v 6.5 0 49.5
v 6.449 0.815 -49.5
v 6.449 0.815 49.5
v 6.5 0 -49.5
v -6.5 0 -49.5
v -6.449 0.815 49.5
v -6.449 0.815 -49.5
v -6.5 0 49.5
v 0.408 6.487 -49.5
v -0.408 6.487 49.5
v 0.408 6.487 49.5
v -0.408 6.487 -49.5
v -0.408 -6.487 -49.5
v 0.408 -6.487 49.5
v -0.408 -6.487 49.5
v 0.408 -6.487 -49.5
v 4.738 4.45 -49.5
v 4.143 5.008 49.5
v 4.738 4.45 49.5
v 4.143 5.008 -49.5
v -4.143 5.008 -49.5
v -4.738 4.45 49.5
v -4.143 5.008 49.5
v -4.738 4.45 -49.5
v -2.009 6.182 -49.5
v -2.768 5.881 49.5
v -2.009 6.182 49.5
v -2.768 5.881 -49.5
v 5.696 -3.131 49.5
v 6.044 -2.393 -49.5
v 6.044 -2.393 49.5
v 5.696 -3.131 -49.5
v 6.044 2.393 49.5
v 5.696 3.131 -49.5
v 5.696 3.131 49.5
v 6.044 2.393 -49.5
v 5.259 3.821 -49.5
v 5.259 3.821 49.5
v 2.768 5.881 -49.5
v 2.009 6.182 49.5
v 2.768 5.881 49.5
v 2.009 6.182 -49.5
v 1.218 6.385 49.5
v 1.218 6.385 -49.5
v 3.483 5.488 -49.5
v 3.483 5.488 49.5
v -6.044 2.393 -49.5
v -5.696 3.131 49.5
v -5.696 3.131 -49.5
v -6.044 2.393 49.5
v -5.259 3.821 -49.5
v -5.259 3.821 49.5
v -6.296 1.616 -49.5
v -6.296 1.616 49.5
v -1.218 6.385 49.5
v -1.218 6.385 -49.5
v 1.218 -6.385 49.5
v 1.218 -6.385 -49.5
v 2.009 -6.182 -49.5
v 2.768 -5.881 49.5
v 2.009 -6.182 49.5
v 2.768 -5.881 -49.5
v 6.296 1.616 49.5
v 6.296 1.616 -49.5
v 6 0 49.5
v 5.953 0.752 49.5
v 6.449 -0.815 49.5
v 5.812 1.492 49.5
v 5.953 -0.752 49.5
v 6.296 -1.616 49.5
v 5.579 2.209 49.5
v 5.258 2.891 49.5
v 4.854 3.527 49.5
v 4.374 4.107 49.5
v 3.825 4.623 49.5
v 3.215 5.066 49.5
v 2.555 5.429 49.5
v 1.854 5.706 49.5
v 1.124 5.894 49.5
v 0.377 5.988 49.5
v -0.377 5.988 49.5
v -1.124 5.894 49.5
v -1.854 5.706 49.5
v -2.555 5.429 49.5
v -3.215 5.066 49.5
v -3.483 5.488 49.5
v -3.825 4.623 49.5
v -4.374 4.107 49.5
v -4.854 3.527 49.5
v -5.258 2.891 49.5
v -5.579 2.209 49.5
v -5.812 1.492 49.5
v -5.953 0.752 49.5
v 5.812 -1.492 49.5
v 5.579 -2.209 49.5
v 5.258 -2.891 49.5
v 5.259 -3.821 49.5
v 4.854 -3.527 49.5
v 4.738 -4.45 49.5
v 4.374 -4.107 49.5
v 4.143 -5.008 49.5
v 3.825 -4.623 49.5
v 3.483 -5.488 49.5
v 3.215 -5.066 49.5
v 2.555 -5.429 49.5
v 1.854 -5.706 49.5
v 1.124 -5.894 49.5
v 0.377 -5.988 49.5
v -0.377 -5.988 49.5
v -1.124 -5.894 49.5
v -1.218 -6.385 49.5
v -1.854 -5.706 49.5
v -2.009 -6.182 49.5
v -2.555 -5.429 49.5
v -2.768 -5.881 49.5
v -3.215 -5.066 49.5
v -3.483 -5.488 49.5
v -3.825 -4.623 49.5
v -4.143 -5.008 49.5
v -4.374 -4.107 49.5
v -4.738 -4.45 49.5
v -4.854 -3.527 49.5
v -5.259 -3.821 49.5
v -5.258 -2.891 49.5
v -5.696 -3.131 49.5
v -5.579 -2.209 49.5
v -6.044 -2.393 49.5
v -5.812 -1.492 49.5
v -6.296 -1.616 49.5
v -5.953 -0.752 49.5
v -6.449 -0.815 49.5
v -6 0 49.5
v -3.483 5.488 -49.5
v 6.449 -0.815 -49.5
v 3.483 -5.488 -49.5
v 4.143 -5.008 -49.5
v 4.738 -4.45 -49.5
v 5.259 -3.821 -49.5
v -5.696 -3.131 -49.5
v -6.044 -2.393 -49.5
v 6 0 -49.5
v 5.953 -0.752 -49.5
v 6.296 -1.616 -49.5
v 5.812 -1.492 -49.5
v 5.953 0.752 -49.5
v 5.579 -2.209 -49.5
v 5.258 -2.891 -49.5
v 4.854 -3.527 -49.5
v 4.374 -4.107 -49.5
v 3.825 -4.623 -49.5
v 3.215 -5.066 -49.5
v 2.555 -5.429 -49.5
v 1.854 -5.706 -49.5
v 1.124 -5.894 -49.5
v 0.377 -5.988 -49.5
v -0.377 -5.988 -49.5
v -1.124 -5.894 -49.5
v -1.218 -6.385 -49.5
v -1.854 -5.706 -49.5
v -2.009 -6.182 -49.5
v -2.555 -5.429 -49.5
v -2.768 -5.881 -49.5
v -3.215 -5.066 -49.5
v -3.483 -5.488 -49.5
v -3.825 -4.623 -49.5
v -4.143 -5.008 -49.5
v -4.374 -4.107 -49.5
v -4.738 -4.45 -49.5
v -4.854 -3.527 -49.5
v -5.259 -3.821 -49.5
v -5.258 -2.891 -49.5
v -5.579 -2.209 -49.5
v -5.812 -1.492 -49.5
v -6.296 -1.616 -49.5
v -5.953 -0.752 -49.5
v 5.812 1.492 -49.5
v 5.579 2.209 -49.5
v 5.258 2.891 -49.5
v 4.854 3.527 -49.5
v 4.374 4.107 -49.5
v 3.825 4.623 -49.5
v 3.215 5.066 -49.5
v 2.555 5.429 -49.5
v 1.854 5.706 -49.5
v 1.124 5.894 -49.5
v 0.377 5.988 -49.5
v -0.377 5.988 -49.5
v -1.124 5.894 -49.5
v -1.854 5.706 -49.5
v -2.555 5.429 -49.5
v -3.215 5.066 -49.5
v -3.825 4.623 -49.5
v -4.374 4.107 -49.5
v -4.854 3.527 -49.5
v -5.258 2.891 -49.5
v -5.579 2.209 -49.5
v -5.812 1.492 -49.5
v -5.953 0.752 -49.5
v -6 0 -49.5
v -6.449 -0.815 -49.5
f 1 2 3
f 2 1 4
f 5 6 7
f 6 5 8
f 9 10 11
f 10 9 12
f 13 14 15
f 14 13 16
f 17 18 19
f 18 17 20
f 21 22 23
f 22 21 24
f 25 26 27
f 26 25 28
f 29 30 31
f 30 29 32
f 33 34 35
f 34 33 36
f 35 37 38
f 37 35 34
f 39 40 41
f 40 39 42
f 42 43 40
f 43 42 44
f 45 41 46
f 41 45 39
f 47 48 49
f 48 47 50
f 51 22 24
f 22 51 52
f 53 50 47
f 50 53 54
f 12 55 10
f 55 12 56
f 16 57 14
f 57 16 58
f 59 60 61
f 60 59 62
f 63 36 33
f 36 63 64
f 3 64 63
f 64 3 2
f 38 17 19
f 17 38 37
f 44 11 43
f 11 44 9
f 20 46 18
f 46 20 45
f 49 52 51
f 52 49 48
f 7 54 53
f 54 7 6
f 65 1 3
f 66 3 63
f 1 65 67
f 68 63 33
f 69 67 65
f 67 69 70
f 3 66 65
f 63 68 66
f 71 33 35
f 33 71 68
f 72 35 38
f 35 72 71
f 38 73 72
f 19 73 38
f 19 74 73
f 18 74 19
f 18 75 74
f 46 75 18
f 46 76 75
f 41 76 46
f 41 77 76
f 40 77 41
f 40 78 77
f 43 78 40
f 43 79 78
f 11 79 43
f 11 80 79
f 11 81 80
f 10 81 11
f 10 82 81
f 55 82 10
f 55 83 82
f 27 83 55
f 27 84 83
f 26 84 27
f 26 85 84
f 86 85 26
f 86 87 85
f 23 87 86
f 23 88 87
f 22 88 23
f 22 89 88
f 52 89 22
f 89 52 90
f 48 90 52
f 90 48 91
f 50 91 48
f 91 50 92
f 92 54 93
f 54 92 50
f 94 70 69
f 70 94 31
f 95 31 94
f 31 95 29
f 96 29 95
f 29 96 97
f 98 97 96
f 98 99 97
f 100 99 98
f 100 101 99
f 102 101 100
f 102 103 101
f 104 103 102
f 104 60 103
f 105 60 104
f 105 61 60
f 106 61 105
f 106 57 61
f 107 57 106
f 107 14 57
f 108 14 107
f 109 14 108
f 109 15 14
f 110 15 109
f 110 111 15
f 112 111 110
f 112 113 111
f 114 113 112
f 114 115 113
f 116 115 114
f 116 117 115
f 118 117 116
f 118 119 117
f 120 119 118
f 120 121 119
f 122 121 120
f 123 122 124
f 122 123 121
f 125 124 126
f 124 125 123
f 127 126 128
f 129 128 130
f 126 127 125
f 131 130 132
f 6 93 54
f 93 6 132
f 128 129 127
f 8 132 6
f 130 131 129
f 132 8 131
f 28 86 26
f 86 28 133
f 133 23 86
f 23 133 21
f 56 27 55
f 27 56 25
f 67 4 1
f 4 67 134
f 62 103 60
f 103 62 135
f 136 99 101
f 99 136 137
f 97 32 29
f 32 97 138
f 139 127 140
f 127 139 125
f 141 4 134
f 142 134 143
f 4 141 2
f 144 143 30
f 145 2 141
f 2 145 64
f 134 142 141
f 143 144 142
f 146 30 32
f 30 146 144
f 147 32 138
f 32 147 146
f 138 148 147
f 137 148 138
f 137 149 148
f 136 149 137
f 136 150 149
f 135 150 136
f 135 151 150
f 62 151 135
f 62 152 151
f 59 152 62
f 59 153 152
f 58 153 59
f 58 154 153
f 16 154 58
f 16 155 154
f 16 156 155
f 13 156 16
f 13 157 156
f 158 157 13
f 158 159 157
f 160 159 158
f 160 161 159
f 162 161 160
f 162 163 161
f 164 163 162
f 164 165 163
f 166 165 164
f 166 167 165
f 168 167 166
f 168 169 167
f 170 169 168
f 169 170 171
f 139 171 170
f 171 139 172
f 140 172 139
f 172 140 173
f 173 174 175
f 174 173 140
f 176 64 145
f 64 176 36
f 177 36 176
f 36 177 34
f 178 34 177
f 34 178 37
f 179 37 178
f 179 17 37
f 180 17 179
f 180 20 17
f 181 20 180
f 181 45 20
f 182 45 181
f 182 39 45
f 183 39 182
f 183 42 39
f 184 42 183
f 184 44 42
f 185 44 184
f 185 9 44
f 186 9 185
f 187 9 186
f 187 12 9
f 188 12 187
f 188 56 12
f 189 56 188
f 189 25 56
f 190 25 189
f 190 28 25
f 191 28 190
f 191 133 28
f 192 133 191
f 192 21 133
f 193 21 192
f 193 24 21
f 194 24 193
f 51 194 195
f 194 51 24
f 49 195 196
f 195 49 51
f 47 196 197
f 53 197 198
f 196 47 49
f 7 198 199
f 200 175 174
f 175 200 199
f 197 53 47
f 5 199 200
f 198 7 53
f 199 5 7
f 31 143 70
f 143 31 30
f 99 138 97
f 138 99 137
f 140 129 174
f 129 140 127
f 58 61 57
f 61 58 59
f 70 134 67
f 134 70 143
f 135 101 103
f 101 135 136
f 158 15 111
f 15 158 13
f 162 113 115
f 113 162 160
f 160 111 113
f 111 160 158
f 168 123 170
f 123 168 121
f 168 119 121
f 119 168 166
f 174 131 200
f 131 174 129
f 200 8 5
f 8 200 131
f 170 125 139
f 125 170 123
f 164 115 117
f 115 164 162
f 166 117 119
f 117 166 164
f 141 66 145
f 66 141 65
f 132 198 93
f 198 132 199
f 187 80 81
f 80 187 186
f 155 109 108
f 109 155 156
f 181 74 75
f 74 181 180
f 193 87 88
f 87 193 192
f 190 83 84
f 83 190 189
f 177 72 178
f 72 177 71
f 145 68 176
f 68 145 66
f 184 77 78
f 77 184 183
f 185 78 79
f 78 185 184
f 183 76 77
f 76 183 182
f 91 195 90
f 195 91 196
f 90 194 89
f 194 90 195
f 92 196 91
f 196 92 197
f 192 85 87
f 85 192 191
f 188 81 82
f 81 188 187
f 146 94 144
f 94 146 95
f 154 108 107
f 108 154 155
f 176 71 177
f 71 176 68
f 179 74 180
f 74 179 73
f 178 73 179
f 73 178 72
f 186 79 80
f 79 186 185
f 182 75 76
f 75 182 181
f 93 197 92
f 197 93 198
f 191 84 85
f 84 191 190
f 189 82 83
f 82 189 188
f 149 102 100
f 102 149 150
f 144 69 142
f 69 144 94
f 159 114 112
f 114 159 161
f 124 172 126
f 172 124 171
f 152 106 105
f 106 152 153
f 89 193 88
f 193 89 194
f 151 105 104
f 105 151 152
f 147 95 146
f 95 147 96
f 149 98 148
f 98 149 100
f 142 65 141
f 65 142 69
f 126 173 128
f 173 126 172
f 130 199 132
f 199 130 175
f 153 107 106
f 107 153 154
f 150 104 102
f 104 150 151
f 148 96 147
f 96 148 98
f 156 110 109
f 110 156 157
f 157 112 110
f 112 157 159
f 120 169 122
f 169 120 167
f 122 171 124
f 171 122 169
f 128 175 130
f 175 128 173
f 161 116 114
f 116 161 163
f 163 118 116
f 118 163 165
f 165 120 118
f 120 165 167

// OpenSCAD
$fn = 50;


difference() {
	union() {
		translate(v = [0, 0, -49.5000000000]) {
			cylinder(h = 99, r = 6.5000000000);
		}
	}
	union() {
		translate(v = [0, 0, -100.0000000000]) {
			cylinder(h = 200, r = 6);
		}
	}
}
